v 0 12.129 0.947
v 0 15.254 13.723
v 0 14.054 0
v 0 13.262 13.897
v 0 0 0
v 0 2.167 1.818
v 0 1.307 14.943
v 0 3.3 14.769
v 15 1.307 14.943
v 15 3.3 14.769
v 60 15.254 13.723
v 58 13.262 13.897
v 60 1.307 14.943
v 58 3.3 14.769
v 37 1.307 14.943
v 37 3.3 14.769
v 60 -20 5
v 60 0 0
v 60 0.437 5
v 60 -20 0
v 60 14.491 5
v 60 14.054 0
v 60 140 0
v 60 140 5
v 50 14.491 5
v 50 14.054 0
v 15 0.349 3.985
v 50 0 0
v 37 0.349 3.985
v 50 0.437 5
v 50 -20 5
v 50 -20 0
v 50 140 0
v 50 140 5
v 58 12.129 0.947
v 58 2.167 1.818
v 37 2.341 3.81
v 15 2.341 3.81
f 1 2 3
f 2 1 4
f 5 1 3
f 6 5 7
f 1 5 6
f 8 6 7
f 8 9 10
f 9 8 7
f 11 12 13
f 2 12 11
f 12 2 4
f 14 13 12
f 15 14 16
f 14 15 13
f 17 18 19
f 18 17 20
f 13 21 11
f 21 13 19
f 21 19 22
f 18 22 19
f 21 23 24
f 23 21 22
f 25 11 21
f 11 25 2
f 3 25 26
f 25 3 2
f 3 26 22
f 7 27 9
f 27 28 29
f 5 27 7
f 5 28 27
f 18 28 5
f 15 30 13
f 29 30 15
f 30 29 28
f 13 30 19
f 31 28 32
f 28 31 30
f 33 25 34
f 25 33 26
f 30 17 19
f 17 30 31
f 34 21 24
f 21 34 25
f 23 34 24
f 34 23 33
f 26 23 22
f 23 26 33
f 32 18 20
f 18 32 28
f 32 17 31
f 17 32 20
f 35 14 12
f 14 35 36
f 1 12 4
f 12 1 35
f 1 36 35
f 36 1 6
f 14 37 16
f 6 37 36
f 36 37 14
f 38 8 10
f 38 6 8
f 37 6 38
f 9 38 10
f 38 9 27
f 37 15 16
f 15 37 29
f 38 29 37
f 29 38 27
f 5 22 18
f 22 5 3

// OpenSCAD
width = 60;
height = 15;
thickness = 2;
depth = 14;
leg_depth = 80;
leg_width = 10;
leg_height = 5;
gap_offset_x = 15;
gap_width = 22;
gap_height = 11;
tilt_angle = 5;
leg_front_depth = 20;



translate([0, 0, 0])
{
    difference()
    {
        rotate(-tilt_angle, [1, 0, 0])
        {
            difference()
            {
                union()
                {
                    cube([width, depth, height]);
                    
                    // Pootje naar voren.
                    rotate(tilt_angle, [1, 0, 0])
                    {
                        difference()
                        {
                            // Pootje.
                            translate([width - leg_width, -leg_front_depth, 0])
                            {
                                cube([leg_width, leg_depth + leg_depth, leg_height]);
                            }
                        }
                    }
                }
                
                // Leegmaken scherm-staander.
                translate([0, thickness, thickness])
                {
                    cube([width - thickness, depth - thickness - thickness, height - thickness]); 
                }
                
                // Uitsnede voor aan/uit knop voorkant.
                translate([gap_offset_x, 0, height - gap_height])
                {
                    cube([gap_width, thickness, gap_height]);
                }
            }
        }
        
        translate([0, 0, -5])
        {
            cube([width, depth + 5, 5]);
        }

    }
}
